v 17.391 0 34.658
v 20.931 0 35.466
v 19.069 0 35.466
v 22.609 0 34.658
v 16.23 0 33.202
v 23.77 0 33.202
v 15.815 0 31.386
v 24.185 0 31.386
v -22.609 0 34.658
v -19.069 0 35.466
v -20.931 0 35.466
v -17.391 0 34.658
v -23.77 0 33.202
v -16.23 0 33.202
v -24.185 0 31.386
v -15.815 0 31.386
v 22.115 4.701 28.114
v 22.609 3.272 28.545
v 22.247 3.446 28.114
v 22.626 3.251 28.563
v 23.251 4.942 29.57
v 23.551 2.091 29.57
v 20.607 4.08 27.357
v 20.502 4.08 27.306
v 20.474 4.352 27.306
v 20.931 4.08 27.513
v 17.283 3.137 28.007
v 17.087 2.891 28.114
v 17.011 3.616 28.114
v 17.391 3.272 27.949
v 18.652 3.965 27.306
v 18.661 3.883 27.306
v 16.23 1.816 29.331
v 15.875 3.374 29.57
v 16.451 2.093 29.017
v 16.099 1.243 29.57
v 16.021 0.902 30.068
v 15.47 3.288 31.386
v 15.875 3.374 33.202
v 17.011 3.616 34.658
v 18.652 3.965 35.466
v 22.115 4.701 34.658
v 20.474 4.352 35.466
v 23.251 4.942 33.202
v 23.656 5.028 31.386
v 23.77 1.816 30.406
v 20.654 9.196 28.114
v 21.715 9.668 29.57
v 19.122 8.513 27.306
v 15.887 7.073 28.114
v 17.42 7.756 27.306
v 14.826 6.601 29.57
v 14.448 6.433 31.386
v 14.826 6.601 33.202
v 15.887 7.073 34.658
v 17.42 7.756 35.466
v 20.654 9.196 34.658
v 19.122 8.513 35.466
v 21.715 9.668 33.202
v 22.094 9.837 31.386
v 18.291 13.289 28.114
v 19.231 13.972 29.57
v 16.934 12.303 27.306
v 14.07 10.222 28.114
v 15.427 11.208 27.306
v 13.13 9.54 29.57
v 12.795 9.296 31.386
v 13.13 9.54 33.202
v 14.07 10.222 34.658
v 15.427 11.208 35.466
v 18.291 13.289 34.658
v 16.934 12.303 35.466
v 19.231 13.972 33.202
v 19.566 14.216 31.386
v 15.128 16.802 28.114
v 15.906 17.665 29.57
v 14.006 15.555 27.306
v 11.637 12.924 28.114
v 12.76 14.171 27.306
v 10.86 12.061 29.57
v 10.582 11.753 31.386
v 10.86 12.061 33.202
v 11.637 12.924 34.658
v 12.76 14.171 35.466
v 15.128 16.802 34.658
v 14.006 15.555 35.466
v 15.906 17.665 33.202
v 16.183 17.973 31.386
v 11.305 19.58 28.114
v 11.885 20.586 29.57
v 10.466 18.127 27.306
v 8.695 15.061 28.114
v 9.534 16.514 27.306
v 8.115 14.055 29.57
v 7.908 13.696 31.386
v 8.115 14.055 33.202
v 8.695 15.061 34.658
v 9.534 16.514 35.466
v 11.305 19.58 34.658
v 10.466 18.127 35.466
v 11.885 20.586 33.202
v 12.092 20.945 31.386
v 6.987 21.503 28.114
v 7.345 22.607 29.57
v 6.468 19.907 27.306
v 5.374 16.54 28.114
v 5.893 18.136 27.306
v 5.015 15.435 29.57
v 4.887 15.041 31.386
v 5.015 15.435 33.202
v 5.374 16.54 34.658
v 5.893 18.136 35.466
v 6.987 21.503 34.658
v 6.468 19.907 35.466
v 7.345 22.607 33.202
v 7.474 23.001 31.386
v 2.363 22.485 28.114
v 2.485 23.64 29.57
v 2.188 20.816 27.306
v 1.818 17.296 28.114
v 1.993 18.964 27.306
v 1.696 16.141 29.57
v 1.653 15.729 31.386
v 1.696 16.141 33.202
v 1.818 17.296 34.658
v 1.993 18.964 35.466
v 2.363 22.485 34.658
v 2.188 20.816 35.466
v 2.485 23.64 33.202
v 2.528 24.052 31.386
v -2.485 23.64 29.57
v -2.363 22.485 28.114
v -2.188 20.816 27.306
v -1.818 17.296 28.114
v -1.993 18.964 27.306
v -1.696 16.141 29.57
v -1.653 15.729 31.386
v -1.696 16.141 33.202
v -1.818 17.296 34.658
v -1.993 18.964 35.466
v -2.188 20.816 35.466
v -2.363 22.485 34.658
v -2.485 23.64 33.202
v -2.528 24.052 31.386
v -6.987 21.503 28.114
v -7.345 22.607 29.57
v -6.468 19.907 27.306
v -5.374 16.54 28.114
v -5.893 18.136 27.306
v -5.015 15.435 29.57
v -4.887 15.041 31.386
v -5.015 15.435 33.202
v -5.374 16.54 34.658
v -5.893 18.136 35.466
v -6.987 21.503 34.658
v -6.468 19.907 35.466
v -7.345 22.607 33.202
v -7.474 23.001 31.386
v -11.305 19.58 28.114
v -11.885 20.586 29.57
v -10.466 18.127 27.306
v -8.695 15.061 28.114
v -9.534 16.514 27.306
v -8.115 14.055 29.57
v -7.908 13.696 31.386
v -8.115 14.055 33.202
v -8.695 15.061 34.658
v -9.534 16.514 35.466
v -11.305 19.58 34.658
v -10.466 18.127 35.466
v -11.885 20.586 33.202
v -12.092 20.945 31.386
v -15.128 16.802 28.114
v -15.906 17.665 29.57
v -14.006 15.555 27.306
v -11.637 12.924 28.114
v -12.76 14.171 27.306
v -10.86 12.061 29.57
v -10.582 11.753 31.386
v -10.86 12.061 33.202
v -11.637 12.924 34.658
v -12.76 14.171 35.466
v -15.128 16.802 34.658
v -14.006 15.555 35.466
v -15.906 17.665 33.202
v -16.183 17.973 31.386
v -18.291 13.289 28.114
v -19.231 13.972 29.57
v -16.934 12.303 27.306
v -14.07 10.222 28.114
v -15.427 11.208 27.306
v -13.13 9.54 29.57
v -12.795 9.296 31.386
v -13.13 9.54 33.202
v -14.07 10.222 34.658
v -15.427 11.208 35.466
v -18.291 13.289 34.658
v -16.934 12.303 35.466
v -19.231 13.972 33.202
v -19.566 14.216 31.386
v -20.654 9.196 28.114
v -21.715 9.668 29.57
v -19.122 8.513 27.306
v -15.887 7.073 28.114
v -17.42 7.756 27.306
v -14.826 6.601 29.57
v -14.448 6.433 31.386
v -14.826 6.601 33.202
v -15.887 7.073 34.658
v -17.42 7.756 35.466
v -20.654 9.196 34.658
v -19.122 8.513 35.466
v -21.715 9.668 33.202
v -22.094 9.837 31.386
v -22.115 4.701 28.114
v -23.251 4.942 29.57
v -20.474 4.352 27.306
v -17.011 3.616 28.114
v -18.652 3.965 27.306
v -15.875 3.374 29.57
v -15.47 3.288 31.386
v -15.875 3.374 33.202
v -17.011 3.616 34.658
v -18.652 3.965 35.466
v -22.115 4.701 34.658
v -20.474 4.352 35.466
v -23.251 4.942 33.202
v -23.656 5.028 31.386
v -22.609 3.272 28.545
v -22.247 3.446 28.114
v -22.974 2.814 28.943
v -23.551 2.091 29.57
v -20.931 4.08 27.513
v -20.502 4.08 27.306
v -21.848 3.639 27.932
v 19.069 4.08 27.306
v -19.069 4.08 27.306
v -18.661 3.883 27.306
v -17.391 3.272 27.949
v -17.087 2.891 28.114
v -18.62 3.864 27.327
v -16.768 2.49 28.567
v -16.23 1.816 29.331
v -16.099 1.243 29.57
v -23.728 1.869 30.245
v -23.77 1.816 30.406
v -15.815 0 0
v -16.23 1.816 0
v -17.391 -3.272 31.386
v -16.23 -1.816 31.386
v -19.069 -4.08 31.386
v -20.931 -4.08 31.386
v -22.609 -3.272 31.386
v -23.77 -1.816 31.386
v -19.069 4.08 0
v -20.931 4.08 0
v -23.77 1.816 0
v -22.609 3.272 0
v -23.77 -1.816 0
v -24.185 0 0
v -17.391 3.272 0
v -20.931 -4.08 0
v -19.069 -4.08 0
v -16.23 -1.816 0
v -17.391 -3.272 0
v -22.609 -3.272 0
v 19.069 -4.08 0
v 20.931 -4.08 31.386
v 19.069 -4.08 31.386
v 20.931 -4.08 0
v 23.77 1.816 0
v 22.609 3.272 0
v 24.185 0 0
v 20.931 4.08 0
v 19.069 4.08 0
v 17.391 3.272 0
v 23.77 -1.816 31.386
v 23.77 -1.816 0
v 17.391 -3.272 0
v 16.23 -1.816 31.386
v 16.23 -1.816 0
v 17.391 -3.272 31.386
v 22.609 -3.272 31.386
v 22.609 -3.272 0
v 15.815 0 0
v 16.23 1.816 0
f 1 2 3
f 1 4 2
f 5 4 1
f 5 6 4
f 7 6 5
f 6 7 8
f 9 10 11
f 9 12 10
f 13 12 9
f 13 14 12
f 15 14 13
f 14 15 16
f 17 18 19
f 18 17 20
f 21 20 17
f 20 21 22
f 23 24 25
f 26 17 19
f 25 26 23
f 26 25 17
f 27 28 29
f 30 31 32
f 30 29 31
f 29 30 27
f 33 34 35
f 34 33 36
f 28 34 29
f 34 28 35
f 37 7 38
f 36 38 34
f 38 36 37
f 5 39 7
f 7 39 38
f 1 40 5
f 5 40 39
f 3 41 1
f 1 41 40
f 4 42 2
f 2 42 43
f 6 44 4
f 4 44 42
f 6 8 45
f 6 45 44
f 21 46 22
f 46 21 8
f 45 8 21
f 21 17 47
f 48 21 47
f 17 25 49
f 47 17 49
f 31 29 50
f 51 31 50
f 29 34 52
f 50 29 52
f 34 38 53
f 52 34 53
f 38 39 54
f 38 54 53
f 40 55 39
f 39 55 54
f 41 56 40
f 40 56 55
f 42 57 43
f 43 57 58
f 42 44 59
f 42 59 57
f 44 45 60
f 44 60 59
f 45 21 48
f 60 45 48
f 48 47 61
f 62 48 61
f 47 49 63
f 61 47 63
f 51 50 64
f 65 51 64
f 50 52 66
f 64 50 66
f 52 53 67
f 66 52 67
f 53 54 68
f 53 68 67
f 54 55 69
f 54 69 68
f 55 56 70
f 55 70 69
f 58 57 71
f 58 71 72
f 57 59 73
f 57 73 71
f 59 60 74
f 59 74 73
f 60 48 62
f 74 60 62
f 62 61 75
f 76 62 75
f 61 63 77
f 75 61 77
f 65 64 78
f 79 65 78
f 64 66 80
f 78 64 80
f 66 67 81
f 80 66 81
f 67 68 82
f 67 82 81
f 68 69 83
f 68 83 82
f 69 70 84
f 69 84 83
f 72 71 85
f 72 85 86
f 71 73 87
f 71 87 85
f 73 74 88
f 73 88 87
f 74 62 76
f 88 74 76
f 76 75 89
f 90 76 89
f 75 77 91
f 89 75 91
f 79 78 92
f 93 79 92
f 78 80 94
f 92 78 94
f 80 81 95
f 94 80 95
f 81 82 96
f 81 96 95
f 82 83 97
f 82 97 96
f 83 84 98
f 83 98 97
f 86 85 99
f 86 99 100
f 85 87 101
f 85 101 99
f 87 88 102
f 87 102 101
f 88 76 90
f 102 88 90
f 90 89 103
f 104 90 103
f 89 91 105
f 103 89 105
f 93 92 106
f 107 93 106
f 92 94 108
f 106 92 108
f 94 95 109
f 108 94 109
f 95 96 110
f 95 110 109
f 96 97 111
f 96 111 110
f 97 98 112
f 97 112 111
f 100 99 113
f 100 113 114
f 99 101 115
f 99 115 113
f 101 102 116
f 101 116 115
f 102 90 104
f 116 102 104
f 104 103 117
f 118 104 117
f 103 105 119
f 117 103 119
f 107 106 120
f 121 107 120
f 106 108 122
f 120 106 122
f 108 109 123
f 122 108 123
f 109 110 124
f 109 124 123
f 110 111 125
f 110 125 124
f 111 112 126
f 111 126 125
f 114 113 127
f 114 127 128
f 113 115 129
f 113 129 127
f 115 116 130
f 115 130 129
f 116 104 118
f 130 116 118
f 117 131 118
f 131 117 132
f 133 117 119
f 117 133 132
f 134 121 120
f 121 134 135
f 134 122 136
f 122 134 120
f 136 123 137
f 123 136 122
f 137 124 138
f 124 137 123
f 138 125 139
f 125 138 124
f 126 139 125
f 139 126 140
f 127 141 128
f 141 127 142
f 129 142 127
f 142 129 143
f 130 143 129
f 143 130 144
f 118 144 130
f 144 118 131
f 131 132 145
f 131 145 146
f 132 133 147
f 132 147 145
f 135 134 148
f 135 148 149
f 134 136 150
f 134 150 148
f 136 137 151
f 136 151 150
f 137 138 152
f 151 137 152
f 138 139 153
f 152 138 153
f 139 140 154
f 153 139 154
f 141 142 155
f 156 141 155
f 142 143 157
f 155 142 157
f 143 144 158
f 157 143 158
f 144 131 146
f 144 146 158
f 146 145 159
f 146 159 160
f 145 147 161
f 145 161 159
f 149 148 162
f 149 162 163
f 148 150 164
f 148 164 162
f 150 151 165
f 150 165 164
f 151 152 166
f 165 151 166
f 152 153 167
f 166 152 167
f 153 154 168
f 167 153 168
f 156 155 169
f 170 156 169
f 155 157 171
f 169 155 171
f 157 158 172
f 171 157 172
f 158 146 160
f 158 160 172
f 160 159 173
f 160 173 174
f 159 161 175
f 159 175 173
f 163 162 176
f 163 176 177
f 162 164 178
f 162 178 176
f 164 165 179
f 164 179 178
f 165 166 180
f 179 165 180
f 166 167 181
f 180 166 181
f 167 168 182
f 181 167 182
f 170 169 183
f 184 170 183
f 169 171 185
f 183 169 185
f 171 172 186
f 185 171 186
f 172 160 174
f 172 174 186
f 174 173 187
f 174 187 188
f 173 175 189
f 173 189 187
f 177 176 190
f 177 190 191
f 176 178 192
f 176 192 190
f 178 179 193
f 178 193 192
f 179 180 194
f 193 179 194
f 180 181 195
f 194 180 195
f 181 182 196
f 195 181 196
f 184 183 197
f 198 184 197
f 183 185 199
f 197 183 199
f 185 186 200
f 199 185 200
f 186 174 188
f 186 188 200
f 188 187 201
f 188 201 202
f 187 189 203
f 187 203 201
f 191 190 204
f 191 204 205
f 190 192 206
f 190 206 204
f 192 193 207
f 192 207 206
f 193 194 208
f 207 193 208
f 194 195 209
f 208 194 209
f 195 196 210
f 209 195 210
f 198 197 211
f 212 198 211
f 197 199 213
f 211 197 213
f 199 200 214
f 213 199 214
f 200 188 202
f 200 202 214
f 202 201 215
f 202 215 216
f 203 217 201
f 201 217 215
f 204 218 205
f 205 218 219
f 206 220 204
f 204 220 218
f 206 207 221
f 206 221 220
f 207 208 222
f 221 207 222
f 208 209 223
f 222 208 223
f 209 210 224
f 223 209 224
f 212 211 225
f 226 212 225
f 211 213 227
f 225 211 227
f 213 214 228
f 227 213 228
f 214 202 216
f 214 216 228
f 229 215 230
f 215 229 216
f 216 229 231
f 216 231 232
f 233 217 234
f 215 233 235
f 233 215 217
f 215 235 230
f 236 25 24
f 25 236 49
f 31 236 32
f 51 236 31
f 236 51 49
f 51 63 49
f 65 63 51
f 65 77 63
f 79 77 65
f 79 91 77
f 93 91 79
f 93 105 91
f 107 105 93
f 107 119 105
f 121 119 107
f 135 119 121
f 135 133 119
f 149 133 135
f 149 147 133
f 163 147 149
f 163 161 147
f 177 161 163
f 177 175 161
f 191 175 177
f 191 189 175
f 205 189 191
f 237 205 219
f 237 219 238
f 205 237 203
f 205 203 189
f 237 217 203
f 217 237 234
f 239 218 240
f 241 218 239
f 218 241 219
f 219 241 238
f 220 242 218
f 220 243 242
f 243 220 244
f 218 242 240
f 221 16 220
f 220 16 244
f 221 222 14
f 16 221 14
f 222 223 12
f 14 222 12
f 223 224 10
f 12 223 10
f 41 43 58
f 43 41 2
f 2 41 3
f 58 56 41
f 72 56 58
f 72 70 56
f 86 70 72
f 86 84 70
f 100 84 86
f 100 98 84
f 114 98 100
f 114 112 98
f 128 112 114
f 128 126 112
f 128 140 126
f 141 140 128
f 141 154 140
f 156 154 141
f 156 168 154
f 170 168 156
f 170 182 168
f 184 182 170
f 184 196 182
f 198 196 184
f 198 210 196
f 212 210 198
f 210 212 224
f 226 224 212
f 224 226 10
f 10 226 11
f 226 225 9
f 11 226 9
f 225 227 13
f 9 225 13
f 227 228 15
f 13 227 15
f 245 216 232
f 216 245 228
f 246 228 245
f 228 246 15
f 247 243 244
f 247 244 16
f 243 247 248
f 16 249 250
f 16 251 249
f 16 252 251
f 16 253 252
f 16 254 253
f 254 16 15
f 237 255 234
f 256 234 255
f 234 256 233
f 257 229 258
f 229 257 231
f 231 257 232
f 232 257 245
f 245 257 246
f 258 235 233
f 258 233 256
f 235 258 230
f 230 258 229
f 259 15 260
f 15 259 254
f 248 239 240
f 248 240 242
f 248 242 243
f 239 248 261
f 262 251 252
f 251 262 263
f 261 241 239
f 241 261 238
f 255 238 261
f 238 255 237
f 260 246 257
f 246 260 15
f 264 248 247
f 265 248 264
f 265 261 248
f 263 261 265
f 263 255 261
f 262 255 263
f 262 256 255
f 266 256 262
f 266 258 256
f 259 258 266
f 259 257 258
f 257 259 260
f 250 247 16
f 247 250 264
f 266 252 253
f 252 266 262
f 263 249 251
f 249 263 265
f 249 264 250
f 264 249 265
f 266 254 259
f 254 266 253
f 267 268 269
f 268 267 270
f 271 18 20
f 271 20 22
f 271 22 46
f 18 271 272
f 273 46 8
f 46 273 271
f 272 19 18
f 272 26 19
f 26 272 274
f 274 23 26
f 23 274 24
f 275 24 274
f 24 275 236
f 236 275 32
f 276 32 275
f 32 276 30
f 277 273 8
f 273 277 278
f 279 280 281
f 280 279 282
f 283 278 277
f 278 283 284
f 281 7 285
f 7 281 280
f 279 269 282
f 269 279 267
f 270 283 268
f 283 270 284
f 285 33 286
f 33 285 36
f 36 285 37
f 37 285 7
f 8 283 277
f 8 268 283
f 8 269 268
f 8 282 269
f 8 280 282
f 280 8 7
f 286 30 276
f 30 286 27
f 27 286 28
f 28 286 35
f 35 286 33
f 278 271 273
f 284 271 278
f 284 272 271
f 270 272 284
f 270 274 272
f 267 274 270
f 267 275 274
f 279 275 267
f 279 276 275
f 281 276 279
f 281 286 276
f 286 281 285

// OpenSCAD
/* doodle-meta {"version":1,"parameters":{"bend_radius":{"label":"Bend Radius","description":"Radius of the 180-degree arc bend","unit":"mm","feature":"bend"},"leg_length":{"label":"Leg Length","description":"Length of the straight legs extending in Y","unit":"mm","feature":"legs"},"bar_diameter":{"label":"Bar Diameter","description":"Diameter of the circular cross-section of the handle bar","unit":"mm","feature":"cross_section"}},"features":{"bend":{"kind":"region","label":"Arc Bend","min":[0,0,0],"max":[28.6,8,28.6]},"legs":{"kind":"region","label":"Straight Legs","min":[0,0,0],"max":[28.6,54,8]},"cross_section":{"kind":"region","label":"Cross Section","min":[0,0,0],"max":[8,8,8]}}} */

// Parameters
bend_radius = 20;
leg_length = 31.385978640244247;
bar_diameter = 8.369594304065133;

// Derived dimensions
// The handle is symmetric about the Y axis (depth centerline).
// The bend is a 180-degree arc in the XY plane (Top view).
// The legs extend along the Y axis (depth).
// The cross-section is circular with diameter bar_diameter.
// The arc connects the tops of the legs (at Y = leg_length).
// The arc goes from X = -bend_radius to X = +bend_radius.
// The top of the arc is at Y = leg_length + bend_radius.
// The total depth is leg_length + bend_radius + bar_diameter/2.

module handle_body() {
    // The bend (torus segment)
    // Create a half-torus using rotate_extrude
    // Profile: circle in XY plane, centered at (bend_radius, 0), radius bar_diameter/2
    // Rotate 180 degrees around Z
    // This creates a half-torus in the XY plane, centered at origin, spanning Y > 0.
    // Translate up by leg_length to connect to the legs.
    
    translate([0, 0, leg_length])
        rotate_extrude(angle=180)
            translate([bend_radius, 0])
                circle(r=bar_diameter/2);
    
    // The legs
    // Left leg at X = -bend_radius
    translate([-bend_radius, 0, 0])
        cylinder(h=leg_length, r=bar_diameter/2);
        
    // Right leg at X = +bend_radius
    translate([bend_radius, 0, 0])
        cylinder(h=leg_length, r=bar_diameter/2);
}

handle_body();
